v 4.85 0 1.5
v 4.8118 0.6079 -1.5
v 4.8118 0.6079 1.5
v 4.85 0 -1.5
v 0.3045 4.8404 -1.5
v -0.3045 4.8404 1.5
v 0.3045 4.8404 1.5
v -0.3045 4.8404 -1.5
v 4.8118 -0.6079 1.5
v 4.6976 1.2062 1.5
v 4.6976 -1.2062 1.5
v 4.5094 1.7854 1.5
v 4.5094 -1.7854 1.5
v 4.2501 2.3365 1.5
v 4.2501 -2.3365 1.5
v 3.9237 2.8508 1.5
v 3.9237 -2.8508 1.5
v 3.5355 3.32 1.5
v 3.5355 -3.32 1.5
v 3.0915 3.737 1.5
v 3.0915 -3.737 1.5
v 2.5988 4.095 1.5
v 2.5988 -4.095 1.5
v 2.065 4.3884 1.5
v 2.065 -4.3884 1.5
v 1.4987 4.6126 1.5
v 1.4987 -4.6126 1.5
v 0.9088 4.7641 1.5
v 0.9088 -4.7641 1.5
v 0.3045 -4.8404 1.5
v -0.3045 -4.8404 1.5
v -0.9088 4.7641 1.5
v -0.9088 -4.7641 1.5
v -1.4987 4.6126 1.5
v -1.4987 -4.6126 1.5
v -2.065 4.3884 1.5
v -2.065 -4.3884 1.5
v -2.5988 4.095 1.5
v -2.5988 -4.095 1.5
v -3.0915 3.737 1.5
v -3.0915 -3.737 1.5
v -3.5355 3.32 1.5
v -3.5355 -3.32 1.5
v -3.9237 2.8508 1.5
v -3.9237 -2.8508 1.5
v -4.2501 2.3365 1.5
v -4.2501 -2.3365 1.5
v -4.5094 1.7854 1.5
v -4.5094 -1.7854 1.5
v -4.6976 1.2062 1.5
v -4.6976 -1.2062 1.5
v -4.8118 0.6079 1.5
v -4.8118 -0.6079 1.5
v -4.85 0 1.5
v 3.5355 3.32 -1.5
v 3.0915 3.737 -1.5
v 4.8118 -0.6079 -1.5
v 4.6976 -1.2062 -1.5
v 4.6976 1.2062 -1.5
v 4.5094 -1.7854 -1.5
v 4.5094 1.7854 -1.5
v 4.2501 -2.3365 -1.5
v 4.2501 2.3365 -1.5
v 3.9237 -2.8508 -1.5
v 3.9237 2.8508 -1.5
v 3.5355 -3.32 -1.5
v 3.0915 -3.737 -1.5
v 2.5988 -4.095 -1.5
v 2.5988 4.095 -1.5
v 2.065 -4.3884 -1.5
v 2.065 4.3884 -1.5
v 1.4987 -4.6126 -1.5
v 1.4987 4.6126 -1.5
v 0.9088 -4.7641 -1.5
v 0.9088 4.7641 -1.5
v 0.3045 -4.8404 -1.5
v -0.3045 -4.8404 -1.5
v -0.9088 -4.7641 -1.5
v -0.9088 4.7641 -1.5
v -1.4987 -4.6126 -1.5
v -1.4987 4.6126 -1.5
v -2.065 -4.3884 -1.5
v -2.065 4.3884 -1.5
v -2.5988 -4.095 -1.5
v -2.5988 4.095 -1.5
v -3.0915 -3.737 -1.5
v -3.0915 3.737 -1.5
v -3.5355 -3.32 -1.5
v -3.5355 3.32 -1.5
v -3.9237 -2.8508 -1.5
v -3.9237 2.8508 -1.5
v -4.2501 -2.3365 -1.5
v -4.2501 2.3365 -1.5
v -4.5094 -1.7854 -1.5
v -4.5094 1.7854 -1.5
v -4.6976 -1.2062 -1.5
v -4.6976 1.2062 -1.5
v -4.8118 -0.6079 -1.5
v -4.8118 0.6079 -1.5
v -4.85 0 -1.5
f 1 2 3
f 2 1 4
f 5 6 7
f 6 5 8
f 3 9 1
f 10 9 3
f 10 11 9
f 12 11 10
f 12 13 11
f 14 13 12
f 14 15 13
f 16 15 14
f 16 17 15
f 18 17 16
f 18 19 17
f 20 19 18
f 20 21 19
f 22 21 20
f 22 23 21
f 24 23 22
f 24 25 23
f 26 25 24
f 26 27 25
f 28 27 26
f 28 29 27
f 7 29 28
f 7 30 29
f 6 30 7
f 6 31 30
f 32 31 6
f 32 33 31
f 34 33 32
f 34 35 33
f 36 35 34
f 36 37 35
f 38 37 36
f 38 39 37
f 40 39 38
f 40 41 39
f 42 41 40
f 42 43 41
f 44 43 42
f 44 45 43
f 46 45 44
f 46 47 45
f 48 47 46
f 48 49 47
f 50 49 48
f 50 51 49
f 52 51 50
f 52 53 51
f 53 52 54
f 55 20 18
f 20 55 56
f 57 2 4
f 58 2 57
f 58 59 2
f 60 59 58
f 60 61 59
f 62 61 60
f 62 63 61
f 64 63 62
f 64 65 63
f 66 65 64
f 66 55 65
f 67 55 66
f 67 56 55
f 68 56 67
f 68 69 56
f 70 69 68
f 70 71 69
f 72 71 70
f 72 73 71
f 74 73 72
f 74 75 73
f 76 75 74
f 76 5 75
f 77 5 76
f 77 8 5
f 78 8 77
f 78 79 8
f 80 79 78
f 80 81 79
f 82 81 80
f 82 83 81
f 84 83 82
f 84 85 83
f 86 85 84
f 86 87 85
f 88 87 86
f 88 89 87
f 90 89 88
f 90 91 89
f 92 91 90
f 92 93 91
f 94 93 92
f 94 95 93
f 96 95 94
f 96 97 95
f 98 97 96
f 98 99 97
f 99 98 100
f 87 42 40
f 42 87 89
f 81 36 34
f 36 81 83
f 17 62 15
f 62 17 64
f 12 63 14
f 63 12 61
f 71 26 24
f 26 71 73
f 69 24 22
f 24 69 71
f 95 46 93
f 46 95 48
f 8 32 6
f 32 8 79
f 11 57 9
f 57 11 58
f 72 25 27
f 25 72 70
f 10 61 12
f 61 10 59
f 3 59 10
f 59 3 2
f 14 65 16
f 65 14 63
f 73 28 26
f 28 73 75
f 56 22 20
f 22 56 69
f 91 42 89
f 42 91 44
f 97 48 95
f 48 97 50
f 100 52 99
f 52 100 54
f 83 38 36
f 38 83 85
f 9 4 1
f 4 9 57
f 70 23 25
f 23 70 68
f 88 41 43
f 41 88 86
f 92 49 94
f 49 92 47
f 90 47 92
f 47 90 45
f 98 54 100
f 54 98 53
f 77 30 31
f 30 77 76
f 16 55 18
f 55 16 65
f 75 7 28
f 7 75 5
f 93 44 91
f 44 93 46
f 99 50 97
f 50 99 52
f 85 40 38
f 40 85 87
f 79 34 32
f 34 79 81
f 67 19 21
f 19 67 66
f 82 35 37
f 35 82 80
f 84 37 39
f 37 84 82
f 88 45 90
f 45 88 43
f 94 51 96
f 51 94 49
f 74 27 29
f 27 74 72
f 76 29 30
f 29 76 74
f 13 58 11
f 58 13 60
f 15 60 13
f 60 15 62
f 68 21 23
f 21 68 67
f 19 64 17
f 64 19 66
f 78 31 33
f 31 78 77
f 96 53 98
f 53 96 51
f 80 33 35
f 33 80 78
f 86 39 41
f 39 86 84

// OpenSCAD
$fn = 50;


difference() {
	union() {
		translate(v = [0, 0, -1.5000000000]) {
			cylinder(h = 3, r = 4.8500000000);
		}
	}
	union() {
		translate(v = [0, 0, -100.0000000000]) {
			cylinder(h = 200, r = 0);
		}
	}
}
